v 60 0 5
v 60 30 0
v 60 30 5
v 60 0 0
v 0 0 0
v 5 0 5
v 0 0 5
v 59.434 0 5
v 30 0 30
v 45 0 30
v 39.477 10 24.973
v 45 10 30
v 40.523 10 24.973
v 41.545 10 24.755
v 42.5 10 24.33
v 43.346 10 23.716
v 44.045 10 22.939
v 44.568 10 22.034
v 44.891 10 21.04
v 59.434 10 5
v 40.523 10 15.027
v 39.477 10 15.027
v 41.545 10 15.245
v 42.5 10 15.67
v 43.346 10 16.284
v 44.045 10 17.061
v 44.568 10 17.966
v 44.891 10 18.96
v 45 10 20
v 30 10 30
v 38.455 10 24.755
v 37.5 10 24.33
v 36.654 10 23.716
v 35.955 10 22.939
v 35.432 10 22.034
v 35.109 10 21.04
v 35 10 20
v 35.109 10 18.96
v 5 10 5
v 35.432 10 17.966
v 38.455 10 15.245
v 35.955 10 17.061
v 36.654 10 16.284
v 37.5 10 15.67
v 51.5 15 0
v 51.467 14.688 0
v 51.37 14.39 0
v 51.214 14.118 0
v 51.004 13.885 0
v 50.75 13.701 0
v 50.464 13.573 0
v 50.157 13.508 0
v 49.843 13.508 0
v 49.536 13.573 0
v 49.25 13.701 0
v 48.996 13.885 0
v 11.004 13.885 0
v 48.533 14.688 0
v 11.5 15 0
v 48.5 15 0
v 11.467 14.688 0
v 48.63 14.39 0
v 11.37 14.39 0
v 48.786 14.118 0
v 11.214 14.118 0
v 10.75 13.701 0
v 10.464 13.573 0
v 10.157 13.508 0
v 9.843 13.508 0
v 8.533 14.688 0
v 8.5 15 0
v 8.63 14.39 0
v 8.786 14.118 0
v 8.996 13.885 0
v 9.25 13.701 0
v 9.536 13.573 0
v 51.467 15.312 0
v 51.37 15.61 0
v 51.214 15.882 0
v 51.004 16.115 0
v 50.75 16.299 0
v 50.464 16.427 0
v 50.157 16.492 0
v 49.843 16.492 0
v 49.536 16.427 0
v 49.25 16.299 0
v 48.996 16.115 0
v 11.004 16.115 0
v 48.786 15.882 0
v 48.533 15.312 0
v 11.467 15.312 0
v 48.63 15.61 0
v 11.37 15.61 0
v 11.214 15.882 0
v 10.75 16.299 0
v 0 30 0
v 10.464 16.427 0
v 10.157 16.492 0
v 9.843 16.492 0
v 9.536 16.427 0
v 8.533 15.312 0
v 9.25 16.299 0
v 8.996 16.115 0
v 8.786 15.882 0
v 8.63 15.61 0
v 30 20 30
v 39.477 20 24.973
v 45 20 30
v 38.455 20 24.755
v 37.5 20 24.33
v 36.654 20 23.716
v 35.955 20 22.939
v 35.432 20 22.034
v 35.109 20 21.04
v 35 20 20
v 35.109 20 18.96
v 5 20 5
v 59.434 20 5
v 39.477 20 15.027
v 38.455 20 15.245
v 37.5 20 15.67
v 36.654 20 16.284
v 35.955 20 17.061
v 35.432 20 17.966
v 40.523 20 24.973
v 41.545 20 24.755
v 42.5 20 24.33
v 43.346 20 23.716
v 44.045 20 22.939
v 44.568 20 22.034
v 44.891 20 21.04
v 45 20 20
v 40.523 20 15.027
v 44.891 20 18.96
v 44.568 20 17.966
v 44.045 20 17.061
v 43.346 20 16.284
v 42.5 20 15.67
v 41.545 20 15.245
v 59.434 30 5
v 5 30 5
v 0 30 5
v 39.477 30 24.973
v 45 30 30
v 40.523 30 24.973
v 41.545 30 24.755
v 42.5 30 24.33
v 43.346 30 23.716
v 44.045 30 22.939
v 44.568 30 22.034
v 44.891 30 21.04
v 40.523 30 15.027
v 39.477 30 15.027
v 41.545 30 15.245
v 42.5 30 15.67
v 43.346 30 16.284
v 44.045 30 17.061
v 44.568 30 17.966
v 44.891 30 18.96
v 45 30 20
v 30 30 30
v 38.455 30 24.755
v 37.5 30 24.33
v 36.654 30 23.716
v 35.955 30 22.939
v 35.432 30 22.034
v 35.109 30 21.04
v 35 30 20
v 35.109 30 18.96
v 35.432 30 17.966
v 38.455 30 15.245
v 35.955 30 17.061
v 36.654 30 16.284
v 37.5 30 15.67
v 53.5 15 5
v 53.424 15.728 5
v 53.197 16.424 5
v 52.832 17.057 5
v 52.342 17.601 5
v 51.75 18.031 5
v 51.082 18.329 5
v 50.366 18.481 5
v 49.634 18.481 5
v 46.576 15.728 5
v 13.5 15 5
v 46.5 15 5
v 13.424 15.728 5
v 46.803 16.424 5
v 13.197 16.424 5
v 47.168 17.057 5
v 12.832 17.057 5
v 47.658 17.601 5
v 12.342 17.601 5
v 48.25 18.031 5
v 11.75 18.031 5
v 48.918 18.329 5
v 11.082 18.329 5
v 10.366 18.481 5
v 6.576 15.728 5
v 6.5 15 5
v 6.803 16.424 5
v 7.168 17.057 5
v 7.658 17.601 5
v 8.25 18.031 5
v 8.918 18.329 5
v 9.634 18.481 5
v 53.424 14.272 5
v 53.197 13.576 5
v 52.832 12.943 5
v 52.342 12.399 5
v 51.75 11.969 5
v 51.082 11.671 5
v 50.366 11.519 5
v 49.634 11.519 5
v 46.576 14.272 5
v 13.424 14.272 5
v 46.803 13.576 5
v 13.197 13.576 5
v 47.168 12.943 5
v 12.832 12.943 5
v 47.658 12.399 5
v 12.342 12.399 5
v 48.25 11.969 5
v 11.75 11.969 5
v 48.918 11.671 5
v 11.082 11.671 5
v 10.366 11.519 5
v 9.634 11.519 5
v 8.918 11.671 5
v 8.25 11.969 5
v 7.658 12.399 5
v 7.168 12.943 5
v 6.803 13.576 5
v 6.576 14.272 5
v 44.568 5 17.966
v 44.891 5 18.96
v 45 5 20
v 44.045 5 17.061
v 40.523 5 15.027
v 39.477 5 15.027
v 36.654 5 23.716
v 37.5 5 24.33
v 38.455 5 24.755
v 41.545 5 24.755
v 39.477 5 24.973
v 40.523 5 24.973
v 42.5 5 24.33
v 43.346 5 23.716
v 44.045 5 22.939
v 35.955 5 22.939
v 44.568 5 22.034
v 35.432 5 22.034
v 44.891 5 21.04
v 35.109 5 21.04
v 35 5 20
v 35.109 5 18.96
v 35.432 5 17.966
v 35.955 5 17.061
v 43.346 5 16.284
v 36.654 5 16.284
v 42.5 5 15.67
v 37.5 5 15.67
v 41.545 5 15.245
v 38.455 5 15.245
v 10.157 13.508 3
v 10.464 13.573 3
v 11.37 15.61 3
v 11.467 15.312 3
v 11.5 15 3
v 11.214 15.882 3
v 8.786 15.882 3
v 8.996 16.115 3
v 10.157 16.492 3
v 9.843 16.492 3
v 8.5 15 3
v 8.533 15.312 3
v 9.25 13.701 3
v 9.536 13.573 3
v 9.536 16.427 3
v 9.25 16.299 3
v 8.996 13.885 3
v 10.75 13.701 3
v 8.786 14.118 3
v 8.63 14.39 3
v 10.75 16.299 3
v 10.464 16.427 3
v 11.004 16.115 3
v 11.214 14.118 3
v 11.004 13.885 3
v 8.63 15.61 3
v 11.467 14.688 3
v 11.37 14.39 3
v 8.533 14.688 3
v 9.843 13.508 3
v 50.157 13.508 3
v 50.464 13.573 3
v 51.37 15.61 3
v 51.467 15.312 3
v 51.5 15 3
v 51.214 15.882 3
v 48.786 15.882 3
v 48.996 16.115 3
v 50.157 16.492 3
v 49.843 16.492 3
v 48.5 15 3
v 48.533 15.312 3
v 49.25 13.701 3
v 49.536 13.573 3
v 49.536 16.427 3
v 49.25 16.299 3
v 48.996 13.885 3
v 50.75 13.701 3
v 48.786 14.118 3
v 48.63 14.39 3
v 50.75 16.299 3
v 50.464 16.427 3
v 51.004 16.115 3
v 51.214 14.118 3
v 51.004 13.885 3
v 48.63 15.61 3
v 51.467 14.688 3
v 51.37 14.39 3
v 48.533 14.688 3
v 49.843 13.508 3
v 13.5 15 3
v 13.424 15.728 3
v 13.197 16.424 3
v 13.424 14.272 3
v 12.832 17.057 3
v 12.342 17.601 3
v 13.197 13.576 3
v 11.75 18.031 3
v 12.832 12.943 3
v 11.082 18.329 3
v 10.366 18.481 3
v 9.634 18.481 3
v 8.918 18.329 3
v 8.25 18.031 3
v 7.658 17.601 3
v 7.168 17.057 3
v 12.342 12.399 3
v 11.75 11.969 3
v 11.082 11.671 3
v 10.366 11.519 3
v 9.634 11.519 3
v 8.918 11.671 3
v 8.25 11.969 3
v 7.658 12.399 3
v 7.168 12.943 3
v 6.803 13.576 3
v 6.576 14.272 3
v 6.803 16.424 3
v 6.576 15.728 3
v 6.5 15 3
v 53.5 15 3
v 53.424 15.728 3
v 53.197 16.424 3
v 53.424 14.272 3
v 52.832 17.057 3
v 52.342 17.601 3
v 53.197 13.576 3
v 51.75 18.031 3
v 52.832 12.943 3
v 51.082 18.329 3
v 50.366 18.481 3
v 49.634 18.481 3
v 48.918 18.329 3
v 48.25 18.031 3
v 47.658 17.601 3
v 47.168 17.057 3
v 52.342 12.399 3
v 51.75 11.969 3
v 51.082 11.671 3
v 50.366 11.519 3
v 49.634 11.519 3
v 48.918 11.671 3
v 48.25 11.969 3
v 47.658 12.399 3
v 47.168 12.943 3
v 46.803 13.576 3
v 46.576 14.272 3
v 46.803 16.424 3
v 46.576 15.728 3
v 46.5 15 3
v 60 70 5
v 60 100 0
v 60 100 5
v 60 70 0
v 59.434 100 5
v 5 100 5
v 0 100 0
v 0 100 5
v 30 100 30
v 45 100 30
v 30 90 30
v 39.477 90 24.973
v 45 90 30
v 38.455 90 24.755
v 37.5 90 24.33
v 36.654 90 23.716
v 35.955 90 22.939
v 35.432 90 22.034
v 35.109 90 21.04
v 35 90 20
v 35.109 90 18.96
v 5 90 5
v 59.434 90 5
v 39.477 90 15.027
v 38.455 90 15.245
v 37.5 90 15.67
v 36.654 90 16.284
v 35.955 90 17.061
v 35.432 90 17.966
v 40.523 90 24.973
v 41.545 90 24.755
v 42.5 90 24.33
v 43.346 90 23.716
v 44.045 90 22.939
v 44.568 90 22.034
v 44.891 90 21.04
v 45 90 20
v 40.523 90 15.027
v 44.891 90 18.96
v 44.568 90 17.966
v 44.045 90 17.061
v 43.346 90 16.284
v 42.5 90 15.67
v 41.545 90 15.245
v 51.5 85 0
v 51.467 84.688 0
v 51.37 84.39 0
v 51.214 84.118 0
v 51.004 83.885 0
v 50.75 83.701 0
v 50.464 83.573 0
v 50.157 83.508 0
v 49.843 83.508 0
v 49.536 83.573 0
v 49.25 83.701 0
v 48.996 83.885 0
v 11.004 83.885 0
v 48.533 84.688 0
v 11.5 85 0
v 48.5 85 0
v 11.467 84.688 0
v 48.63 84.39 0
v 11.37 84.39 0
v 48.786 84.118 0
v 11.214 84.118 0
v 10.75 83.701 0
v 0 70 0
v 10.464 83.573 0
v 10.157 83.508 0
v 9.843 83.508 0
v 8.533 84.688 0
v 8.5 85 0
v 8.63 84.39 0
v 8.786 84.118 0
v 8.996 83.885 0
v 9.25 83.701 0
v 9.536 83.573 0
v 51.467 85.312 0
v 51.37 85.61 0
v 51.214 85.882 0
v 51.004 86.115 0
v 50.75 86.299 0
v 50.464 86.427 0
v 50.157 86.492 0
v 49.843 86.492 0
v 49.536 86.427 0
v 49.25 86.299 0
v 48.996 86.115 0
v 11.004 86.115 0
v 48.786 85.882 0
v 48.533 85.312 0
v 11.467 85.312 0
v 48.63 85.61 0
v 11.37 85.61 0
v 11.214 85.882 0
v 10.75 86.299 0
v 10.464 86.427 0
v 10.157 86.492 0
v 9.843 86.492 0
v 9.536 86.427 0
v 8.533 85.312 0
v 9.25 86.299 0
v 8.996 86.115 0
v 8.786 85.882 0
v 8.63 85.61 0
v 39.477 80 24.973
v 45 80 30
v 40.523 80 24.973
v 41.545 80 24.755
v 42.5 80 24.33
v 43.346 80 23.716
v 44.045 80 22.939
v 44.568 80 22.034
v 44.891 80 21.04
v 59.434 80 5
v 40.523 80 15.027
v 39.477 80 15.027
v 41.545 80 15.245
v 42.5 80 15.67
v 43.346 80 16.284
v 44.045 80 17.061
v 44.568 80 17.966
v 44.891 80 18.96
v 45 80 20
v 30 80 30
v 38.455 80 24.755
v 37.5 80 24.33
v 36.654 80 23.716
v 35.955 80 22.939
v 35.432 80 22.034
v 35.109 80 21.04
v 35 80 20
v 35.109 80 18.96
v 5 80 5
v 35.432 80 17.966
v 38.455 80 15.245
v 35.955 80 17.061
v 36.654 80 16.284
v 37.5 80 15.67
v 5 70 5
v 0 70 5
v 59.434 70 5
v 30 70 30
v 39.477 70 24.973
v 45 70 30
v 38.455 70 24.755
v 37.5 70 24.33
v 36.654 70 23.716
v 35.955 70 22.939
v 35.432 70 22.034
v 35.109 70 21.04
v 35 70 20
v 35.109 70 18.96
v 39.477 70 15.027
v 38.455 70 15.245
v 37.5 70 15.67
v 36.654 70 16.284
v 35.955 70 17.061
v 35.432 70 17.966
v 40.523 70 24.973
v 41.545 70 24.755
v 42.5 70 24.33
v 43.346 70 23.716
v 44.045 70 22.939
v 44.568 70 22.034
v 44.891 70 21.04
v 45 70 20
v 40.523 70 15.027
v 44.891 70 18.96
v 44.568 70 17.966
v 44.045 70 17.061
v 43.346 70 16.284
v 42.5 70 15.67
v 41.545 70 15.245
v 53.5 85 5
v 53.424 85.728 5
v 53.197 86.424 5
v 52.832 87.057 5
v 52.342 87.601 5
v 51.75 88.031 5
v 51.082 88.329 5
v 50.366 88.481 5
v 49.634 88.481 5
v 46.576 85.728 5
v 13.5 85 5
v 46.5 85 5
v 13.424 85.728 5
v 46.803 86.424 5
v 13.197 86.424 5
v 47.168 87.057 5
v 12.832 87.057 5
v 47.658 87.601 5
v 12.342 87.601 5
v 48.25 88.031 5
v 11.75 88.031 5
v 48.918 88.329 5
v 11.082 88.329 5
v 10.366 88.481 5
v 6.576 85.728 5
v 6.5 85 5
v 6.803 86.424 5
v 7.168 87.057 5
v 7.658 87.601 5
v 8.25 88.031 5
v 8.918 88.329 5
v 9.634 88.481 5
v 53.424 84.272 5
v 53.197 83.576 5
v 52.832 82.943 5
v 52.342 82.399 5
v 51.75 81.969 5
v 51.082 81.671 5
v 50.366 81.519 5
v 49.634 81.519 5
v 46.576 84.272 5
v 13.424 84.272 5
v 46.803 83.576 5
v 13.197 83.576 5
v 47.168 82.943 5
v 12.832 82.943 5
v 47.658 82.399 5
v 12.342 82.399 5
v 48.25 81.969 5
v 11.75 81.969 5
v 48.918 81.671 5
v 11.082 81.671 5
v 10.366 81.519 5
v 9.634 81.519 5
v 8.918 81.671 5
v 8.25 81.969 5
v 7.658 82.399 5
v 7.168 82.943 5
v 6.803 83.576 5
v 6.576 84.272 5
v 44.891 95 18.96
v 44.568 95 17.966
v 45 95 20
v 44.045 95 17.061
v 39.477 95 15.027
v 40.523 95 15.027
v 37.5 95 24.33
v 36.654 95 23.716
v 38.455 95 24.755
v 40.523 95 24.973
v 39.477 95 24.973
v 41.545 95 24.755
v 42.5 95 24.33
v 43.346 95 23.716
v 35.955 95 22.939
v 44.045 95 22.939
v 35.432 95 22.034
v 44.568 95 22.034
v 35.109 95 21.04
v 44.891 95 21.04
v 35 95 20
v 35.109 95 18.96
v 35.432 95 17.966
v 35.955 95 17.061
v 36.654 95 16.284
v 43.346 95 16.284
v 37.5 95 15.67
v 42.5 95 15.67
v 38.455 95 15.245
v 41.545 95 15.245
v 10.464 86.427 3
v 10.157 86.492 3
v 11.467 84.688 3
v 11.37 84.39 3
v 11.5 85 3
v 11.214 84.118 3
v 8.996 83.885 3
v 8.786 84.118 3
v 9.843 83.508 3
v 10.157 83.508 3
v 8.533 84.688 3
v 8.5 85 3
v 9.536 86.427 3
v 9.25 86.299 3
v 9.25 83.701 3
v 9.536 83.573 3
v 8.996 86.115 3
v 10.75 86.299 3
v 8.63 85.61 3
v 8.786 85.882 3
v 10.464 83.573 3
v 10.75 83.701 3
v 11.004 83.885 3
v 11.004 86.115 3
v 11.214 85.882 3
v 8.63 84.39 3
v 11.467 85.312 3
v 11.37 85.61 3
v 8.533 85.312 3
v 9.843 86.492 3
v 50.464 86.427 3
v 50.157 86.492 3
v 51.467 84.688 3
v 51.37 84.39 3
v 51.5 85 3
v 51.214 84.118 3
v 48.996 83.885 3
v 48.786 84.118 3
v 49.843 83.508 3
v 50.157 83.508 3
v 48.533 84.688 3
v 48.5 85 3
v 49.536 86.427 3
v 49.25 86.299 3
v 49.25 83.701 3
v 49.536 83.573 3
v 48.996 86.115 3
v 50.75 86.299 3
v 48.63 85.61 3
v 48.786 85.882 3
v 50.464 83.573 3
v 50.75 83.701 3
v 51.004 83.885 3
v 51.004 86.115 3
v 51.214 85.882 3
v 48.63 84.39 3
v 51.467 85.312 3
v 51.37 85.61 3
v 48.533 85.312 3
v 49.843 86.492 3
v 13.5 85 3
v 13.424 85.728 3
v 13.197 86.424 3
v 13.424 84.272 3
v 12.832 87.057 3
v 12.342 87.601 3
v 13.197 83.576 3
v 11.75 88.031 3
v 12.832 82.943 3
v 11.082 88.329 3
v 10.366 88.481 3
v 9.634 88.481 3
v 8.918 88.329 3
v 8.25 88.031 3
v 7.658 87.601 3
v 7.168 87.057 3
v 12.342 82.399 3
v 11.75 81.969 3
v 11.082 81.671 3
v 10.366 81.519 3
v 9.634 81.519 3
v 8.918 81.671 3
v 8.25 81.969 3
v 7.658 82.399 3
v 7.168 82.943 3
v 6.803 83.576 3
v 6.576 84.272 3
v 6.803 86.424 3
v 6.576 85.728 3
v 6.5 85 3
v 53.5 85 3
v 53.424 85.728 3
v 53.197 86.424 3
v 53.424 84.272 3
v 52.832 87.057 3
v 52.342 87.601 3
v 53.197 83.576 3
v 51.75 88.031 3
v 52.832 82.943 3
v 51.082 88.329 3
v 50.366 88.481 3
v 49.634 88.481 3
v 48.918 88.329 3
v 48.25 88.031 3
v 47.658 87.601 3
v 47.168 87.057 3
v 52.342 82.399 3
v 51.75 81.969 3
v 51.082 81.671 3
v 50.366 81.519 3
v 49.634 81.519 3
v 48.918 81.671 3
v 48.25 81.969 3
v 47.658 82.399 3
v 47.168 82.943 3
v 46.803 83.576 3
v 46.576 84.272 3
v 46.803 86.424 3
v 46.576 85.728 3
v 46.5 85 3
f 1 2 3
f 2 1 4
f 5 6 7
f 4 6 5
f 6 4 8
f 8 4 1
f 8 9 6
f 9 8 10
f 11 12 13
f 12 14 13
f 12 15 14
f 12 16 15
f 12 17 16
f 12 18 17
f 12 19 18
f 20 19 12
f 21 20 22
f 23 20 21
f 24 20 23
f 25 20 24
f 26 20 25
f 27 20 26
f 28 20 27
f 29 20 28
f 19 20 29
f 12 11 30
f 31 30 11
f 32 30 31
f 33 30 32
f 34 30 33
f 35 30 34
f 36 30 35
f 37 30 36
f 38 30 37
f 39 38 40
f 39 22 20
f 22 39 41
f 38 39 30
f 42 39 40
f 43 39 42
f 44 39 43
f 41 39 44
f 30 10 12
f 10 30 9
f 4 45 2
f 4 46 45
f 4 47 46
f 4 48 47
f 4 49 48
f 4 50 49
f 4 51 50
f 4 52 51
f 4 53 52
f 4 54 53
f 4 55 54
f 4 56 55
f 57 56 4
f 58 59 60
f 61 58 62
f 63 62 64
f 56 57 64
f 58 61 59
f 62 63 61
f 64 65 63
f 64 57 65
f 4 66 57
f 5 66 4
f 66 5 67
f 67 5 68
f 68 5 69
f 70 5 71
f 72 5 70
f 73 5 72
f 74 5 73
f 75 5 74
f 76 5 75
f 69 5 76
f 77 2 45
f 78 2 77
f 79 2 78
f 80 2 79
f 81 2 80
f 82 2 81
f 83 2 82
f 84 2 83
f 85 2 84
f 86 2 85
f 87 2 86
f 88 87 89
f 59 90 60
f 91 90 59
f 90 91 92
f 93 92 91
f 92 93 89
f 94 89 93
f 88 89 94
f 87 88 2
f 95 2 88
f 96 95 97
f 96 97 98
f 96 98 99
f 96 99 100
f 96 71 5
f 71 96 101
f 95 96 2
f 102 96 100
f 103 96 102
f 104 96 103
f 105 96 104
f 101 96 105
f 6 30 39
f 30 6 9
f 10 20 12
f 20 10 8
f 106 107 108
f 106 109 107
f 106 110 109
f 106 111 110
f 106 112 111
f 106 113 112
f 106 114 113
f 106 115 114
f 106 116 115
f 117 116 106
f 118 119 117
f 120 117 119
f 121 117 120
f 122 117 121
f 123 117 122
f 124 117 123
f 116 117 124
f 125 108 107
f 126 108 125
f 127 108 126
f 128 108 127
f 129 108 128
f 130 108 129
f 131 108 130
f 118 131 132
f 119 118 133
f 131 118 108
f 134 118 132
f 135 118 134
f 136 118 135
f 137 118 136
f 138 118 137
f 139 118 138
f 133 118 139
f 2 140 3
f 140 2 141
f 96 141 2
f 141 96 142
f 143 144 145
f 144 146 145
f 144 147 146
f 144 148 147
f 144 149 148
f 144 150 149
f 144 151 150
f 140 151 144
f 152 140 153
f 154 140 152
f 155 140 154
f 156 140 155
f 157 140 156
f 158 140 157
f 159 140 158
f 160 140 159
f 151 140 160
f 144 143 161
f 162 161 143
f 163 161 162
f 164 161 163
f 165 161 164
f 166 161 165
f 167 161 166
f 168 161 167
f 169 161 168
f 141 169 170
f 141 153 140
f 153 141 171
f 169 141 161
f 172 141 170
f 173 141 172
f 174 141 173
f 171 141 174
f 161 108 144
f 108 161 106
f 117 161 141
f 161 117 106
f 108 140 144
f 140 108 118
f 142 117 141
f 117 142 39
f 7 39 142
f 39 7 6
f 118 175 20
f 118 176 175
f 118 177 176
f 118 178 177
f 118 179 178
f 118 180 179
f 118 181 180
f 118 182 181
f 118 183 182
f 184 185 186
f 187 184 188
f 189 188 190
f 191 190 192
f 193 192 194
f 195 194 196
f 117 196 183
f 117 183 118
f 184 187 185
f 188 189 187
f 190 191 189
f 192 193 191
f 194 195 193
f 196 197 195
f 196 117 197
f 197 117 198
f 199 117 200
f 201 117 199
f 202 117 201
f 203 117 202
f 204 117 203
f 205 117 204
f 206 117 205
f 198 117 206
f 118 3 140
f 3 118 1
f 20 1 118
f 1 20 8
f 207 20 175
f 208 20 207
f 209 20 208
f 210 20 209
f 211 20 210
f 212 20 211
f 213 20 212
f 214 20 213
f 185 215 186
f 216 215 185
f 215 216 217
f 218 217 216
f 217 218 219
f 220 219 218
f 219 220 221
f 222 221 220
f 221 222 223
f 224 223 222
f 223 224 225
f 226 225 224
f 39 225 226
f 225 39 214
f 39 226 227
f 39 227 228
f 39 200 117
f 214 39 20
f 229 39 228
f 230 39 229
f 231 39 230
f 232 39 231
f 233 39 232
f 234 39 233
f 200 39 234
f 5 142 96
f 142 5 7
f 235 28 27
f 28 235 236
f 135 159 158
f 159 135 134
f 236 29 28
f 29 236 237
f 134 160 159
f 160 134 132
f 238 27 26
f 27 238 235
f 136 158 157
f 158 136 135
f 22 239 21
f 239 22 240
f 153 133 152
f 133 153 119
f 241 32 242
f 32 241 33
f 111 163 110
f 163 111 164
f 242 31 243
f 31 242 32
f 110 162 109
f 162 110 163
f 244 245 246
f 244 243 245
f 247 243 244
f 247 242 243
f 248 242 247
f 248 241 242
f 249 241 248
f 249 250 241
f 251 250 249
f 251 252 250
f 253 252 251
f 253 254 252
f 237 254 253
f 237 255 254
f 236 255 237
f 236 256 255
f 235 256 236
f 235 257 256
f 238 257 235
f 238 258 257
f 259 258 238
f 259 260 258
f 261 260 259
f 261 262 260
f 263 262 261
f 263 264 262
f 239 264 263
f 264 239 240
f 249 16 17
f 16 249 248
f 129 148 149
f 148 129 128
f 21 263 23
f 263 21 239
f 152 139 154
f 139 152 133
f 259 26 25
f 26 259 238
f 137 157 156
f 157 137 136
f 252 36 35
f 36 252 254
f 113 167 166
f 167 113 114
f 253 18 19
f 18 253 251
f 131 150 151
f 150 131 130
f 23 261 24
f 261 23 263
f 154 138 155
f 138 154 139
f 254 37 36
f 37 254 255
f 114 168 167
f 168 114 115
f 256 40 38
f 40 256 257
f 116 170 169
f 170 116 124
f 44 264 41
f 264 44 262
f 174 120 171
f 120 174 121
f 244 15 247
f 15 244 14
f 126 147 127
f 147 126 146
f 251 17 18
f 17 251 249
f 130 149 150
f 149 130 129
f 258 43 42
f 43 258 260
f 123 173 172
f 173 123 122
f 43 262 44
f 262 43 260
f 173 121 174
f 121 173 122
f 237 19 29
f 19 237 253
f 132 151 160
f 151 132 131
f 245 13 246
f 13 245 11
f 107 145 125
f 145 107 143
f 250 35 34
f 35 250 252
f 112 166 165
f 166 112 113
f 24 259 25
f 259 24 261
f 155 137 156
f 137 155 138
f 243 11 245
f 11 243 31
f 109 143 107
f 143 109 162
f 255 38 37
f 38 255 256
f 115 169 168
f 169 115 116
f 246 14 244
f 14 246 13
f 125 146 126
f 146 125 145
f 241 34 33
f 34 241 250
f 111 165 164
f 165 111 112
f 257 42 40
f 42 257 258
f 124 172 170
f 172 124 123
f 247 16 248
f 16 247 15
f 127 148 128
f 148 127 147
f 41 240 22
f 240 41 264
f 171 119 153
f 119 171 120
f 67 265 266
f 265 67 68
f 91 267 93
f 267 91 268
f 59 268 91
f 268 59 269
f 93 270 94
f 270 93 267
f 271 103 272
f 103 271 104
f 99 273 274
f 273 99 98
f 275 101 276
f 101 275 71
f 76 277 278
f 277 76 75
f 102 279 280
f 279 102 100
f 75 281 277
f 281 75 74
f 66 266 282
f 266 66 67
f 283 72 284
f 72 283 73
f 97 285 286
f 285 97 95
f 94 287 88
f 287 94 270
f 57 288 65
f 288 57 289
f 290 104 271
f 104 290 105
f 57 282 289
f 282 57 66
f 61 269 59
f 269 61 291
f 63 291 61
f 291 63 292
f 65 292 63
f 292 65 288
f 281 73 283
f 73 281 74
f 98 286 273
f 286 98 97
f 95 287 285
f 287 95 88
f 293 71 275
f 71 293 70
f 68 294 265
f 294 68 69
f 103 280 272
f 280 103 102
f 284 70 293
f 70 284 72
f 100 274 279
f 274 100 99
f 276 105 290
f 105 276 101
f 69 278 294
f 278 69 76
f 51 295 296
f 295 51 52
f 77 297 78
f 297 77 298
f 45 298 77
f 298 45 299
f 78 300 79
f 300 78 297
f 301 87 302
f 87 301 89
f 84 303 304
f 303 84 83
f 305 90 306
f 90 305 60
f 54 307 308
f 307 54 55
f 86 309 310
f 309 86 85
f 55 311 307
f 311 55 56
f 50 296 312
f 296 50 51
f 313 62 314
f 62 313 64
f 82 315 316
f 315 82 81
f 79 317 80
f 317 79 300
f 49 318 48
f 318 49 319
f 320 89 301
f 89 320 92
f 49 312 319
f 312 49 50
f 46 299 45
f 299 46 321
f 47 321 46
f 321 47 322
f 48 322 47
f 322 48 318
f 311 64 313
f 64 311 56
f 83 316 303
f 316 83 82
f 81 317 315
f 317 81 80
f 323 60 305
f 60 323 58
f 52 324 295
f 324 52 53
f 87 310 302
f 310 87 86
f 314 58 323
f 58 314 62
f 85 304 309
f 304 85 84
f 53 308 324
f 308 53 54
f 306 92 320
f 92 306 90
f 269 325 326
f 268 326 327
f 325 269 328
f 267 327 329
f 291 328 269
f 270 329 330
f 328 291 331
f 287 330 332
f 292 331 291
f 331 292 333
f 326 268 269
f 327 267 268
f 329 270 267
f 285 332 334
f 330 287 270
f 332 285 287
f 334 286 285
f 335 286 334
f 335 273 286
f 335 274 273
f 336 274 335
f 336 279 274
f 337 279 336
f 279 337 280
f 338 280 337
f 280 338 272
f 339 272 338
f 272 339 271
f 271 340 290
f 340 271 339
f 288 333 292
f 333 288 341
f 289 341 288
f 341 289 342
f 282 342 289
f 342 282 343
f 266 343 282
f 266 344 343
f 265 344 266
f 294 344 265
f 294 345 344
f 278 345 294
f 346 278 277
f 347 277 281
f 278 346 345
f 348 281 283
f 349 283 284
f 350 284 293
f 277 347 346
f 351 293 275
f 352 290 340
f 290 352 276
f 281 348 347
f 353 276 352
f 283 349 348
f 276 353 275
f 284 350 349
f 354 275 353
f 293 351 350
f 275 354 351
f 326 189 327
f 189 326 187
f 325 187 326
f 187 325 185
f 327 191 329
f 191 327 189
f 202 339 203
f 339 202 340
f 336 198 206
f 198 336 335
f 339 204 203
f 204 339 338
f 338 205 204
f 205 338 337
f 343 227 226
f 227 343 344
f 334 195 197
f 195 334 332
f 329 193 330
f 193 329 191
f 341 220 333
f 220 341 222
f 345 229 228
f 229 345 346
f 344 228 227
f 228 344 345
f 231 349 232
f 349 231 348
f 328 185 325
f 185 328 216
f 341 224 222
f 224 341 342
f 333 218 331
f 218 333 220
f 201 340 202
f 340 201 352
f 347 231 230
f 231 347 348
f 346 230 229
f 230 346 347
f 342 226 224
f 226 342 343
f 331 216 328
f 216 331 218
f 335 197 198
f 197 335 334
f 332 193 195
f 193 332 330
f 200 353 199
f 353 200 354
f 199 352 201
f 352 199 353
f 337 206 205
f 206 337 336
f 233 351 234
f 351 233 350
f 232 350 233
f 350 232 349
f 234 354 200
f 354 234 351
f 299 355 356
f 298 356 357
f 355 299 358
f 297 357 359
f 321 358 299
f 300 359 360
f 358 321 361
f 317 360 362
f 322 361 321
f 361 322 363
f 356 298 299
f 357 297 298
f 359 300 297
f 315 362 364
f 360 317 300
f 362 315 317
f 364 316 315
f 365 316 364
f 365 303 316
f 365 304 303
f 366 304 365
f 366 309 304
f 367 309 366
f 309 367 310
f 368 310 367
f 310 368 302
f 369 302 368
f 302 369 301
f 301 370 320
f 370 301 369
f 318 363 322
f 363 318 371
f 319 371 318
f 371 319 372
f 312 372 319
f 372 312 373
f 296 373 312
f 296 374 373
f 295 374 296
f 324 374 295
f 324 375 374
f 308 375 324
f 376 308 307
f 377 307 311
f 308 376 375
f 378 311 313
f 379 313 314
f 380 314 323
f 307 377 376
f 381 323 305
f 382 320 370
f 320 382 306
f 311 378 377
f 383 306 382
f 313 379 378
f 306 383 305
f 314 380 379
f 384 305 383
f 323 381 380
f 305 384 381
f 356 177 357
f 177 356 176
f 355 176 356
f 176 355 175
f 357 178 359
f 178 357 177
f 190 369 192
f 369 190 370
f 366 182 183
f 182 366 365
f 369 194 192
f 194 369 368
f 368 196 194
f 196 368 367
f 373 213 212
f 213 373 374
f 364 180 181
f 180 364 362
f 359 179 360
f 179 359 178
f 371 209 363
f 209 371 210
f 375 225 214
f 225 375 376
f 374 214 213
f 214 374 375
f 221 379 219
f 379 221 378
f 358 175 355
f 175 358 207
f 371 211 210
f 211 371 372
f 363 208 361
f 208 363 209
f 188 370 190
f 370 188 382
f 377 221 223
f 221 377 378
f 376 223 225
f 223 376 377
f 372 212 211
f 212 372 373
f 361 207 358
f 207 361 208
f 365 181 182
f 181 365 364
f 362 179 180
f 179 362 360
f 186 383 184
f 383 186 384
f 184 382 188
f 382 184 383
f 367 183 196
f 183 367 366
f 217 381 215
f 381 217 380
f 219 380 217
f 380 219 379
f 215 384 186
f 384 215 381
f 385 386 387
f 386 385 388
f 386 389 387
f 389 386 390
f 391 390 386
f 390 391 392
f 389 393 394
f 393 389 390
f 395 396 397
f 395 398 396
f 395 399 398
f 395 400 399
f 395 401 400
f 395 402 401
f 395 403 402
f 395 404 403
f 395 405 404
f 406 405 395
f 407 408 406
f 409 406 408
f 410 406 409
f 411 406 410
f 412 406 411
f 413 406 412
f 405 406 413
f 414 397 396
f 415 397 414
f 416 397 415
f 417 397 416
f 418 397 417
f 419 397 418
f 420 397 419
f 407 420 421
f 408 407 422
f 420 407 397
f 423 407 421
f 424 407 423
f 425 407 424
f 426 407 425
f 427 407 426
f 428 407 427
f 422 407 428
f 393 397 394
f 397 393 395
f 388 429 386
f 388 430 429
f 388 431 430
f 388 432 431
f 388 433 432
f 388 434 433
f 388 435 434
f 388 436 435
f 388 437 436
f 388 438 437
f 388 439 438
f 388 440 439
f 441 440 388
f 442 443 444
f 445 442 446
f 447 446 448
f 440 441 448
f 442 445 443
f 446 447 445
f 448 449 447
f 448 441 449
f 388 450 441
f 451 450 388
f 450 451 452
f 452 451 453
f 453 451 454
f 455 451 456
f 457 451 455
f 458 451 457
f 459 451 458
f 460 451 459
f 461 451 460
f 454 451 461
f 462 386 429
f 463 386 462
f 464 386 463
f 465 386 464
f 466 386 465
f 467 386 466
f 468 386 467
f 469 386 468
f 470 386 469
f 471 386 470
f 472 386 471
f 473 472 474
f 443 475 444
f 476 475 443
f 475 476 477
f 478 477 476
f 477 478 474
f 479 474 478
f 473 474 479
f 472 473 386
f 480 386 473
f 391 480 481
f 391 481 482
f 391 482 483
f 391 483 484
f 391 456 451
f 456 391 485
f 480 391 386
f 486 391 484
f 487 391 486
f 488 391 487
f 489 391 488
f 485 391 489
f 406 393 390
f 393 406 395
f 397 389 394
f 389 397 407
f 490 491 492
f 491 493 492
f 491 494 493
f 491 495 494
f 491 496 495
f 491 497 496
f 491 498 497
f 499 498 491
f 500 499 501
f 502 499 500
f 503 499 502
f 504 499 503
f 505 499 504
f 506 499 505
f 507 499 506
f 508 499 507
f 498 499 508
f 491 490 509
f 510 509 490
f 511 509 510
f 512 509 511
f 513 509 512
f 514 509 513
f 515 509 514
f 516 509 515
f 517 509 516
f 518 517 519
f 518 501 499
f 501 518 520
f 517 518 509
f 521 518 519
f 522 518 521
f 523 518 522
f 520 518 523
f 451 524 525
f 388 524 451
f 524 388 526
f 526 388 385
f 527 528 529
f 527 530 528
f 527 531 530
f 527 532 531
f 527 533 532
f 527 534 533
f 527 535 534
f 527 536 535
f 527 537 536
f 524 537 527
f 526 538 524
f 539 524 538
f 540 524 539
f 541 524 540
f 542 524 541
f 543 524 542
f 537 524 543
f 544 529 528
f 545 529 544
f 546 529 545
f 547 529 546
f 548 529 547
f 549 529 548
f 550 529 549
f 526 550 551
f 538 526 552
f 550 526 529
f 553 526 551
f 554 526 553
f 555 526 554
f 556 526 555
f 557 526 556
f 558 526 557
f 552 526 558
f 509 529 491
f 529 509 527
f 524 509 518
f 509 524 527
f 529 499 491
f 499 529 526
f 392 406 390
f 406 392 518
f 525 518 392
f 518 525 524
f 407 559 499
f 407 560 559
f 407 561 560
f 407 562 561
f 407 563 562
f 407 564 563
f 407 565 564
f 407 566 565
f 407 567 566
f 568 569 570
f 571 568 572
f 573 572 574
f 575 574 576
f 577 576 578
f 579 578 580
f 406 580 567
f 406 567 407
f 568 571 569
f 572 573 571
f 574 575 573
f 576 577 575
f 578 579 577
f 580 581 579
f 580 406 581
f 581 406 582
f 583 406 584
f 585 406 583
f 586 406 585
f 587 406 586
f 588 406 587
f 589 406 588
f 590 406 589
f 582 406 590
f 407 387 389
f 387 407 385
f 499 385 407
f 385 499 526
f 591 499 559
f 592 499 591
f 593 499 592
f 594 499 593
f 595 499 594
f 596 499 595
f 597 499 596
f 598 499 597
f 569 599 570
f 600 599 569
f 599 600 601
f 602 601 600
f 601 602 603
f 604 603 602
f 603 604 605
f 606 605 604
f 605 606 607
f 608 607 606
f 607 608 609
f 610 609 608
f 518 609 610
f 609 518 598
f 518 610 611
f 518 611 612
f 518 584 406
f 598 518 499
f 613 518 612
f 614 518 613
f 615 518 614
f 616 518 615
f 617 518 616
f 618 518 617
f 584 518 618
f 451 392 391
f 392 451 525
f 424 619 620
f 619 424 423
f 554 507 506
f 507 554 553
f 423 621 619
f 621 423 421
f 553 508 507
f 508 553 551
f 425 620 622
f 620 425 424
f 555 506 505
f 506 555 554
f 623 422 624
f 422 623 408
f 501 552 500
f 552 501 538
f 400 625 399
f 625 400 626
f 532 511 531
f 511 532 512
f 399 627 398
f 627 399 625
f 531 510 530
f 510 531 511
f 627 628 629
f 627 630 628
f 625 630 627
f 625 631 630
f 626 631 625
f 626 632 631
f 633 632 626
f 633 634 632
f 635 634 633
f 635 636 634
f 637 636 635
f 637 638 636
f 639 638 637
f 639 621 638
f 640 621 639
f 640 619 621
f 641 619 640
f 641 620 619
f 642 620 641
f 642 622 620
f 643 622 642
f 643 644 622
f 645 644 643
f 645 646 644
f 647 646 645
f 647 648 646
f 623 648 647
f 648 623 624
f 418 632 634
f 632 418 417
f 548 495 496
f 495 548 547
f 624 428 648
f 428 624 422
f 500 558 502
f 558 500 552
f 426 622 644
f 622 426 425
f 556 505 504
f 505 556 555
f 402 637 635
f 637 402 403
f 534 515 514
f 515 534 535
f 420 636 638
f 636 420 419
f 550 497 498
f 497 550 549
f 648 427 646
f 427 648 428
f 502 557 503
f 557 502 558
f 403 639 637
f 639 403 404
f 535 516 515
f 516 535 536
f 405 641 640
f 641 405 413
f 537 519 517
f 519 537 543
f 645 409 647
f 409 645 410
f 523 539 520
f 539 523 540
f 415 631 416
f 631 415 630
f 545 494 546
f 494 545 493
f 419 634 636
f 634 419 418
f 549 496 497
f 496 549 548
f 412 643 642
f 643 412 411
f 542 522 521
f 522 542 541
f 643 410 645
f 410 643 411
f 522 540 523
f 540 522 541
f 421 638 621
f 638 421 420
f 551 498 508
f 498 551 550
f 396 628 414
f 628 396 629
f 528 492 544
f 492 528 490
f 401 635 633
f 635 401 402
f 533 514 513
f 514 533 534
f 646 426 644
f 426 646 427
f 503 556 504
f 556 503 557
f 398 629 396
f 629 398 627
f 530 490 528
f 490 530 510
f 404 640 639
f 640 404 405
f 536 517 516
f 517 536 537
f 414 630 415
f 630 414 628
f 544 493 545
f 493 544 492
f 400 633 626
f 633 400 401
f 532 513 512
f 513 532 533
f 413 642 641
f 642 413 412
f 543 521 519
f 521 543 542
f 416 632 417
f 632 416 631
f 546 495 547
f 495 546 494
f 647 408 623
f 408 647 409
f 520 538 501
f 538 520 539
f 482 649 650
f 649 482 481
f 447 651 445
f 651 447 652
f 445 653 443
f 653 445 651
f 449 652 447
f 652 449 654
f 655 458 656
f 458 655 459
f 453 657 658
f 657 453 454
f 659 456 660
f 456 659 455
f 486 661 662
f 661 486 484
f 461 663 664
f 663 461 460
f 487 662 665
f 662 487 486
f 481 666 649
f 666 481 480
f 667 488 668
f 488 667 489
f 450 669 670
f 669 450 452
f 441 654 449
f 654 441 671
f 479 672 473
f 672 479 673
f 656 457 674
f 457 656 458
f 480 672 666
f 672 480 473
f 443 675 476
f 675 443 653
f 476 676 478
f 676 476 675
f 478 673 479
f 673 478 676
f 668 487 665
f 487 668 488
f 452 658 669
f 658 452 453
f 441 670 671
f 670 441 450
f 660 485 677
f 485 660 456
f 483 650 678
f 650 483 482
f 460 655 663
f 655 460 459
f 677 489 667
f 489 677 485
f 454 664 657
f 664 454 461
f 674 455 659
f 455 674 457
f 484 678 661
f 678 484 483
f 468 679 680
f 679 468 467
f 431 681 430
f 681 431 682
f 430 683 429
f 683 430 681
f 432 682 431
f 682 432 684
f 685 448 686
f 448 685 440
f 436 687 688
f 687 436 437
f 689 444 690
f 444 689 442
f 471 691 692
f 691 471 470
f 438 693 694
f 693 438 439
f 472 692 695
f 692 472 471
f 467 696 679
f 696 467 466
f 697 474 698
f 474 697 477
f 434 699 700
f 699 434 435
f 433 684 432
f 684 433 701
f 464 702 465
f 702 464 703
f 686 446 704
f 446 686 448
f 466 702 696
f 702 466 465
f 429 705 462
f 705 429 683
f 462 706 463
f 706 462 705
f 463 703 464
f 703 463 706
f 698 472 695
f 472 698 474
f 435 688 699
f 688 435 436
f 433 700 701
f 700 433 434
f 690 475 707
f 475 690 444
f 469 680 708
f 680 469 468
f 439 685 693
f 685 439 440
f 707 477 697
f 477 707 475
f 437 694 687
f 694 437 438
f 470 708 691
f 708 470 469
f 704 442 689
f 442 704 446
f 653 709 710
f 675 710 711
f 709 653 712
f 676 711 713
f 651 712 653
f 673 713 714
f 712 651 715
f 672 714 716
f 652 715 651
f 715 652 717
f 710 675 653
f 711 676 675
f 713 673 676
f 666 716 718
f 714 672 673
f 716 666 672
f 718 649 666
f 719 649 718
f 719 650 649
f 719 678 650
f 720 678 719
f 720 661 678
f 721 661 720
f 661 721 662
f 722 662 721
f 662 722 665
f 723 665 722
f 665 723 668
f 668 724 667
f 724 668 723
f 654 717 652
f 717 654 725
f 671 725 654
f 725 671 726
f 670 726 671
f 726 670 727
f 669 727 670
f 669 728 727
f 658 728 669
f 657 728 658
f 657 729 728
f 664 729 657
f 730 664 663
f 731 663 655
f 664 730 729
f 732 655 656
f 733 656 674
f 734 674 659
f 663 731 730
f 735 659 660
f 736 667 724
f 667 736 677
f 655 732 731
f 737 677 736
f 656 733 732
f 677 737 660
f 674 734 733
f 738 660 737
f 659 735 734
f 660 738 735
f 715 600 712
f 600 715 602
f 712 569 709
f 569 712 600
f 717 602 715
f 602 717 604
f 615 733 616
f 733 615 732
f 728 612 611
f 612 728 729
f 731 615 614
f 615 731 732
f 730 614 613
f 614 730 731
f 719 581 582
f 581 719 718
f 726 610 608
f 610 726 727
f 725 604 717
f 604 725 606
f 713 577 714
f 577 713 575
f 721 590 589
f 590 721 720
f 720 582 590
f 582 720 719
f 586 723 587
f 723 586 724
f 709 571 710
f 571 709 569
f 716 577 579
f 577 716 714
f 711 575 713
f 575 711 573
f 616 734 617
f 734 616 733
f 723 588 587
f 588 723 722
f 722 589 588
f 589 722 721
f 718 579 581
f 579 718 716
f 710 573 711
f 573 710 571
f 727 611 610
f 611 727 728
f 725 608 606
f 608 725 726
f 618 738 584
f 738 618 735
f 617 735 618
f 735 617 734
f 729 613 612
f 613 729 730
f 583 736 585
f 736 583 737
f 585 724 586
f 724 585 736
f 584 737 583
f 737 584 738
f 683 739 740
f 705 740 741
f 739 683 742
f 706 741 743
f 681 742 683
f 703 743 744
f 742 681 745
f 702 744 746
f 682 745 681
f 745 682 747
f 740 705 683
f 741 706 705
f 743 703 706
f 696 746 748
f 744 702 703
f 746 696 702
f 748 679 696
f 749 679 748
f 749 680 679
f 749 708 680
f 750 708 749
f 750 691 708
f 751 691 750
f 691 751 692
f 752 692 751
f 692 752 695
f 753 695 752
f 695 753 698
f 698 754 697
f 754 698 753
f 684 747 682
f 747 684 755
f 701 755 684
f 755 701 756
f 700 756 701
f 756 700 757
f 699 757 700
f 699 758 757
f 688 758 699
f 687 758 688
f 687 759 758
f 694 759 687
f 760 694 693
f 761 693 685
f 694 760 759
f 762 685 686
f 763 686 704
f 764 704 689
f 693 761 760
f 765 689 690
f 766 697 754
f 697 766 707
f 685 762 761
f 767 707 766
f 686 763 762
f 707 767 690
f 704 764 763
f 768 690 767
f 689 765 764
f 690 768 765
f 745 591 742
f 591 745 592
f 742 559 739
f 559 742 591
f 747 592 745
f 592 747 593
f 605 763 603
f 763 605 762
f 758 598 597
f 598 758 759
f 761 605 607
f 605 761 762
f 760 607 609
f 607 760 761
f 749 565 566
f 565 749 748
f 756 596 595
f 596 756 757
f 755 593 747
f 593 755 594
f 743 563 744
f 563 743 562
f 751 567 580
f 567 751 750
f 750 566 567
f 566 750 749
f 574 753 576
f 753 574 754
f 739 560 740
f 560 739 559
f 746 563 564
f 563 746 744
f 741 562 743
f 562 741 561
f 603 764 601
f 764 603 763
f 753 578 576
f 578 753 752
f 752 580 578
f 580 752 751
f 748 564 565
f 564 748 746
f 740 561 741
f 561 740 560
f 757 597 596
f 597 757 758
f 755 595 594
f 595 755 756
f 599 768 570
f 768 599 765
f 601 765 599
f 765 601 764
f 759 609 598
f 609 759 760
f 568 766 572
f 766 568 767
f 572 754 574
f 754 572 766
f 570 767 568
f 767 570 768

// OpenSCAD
module triangle() {
    //side parts
    difference() {
        cube([60, 30, 10]);
        translate([0,0,-15])
            rotate([0,0,45])
                cube([60, 30, 30]);
        translate([45,30,-15])
            rotate([0,0,-60])
                cube([60, 30, 30]);
        }
}

module poklicka() {
    //side parts with bottom and holes
    difference() {
        union() {
            cube([60, 30, 5]);
            translate([0, 10,  0]) rotate([90, 0, 0] ) triangle();
            translate([0, 30, 0]) rotate([90, 0, 0] ) triangle();
        }
        translate([40, 5, 20]) rotate([-90, 0, 0]) cylinder( h=50, d=10, center=false, $fn=30);
        translate([10, 15, -10]) cylinder( h=20, d=3, center=false, $fn=30);
        
        //bottom holes
        translate([50, 15, -10]) cylinder( h=20, d=3, center=false, $fn=30);
        translate([10, 15, 3]) cylinder( h=20, d=7, center=false, $fn=30);
        translate([50, 15, 3]) cylinder( h=20, d=7, center=false, $fn=30);
    }
}

poklicka();
translate([0, 100, 0] ) mirror([0, 1, 0]) poklicka();
